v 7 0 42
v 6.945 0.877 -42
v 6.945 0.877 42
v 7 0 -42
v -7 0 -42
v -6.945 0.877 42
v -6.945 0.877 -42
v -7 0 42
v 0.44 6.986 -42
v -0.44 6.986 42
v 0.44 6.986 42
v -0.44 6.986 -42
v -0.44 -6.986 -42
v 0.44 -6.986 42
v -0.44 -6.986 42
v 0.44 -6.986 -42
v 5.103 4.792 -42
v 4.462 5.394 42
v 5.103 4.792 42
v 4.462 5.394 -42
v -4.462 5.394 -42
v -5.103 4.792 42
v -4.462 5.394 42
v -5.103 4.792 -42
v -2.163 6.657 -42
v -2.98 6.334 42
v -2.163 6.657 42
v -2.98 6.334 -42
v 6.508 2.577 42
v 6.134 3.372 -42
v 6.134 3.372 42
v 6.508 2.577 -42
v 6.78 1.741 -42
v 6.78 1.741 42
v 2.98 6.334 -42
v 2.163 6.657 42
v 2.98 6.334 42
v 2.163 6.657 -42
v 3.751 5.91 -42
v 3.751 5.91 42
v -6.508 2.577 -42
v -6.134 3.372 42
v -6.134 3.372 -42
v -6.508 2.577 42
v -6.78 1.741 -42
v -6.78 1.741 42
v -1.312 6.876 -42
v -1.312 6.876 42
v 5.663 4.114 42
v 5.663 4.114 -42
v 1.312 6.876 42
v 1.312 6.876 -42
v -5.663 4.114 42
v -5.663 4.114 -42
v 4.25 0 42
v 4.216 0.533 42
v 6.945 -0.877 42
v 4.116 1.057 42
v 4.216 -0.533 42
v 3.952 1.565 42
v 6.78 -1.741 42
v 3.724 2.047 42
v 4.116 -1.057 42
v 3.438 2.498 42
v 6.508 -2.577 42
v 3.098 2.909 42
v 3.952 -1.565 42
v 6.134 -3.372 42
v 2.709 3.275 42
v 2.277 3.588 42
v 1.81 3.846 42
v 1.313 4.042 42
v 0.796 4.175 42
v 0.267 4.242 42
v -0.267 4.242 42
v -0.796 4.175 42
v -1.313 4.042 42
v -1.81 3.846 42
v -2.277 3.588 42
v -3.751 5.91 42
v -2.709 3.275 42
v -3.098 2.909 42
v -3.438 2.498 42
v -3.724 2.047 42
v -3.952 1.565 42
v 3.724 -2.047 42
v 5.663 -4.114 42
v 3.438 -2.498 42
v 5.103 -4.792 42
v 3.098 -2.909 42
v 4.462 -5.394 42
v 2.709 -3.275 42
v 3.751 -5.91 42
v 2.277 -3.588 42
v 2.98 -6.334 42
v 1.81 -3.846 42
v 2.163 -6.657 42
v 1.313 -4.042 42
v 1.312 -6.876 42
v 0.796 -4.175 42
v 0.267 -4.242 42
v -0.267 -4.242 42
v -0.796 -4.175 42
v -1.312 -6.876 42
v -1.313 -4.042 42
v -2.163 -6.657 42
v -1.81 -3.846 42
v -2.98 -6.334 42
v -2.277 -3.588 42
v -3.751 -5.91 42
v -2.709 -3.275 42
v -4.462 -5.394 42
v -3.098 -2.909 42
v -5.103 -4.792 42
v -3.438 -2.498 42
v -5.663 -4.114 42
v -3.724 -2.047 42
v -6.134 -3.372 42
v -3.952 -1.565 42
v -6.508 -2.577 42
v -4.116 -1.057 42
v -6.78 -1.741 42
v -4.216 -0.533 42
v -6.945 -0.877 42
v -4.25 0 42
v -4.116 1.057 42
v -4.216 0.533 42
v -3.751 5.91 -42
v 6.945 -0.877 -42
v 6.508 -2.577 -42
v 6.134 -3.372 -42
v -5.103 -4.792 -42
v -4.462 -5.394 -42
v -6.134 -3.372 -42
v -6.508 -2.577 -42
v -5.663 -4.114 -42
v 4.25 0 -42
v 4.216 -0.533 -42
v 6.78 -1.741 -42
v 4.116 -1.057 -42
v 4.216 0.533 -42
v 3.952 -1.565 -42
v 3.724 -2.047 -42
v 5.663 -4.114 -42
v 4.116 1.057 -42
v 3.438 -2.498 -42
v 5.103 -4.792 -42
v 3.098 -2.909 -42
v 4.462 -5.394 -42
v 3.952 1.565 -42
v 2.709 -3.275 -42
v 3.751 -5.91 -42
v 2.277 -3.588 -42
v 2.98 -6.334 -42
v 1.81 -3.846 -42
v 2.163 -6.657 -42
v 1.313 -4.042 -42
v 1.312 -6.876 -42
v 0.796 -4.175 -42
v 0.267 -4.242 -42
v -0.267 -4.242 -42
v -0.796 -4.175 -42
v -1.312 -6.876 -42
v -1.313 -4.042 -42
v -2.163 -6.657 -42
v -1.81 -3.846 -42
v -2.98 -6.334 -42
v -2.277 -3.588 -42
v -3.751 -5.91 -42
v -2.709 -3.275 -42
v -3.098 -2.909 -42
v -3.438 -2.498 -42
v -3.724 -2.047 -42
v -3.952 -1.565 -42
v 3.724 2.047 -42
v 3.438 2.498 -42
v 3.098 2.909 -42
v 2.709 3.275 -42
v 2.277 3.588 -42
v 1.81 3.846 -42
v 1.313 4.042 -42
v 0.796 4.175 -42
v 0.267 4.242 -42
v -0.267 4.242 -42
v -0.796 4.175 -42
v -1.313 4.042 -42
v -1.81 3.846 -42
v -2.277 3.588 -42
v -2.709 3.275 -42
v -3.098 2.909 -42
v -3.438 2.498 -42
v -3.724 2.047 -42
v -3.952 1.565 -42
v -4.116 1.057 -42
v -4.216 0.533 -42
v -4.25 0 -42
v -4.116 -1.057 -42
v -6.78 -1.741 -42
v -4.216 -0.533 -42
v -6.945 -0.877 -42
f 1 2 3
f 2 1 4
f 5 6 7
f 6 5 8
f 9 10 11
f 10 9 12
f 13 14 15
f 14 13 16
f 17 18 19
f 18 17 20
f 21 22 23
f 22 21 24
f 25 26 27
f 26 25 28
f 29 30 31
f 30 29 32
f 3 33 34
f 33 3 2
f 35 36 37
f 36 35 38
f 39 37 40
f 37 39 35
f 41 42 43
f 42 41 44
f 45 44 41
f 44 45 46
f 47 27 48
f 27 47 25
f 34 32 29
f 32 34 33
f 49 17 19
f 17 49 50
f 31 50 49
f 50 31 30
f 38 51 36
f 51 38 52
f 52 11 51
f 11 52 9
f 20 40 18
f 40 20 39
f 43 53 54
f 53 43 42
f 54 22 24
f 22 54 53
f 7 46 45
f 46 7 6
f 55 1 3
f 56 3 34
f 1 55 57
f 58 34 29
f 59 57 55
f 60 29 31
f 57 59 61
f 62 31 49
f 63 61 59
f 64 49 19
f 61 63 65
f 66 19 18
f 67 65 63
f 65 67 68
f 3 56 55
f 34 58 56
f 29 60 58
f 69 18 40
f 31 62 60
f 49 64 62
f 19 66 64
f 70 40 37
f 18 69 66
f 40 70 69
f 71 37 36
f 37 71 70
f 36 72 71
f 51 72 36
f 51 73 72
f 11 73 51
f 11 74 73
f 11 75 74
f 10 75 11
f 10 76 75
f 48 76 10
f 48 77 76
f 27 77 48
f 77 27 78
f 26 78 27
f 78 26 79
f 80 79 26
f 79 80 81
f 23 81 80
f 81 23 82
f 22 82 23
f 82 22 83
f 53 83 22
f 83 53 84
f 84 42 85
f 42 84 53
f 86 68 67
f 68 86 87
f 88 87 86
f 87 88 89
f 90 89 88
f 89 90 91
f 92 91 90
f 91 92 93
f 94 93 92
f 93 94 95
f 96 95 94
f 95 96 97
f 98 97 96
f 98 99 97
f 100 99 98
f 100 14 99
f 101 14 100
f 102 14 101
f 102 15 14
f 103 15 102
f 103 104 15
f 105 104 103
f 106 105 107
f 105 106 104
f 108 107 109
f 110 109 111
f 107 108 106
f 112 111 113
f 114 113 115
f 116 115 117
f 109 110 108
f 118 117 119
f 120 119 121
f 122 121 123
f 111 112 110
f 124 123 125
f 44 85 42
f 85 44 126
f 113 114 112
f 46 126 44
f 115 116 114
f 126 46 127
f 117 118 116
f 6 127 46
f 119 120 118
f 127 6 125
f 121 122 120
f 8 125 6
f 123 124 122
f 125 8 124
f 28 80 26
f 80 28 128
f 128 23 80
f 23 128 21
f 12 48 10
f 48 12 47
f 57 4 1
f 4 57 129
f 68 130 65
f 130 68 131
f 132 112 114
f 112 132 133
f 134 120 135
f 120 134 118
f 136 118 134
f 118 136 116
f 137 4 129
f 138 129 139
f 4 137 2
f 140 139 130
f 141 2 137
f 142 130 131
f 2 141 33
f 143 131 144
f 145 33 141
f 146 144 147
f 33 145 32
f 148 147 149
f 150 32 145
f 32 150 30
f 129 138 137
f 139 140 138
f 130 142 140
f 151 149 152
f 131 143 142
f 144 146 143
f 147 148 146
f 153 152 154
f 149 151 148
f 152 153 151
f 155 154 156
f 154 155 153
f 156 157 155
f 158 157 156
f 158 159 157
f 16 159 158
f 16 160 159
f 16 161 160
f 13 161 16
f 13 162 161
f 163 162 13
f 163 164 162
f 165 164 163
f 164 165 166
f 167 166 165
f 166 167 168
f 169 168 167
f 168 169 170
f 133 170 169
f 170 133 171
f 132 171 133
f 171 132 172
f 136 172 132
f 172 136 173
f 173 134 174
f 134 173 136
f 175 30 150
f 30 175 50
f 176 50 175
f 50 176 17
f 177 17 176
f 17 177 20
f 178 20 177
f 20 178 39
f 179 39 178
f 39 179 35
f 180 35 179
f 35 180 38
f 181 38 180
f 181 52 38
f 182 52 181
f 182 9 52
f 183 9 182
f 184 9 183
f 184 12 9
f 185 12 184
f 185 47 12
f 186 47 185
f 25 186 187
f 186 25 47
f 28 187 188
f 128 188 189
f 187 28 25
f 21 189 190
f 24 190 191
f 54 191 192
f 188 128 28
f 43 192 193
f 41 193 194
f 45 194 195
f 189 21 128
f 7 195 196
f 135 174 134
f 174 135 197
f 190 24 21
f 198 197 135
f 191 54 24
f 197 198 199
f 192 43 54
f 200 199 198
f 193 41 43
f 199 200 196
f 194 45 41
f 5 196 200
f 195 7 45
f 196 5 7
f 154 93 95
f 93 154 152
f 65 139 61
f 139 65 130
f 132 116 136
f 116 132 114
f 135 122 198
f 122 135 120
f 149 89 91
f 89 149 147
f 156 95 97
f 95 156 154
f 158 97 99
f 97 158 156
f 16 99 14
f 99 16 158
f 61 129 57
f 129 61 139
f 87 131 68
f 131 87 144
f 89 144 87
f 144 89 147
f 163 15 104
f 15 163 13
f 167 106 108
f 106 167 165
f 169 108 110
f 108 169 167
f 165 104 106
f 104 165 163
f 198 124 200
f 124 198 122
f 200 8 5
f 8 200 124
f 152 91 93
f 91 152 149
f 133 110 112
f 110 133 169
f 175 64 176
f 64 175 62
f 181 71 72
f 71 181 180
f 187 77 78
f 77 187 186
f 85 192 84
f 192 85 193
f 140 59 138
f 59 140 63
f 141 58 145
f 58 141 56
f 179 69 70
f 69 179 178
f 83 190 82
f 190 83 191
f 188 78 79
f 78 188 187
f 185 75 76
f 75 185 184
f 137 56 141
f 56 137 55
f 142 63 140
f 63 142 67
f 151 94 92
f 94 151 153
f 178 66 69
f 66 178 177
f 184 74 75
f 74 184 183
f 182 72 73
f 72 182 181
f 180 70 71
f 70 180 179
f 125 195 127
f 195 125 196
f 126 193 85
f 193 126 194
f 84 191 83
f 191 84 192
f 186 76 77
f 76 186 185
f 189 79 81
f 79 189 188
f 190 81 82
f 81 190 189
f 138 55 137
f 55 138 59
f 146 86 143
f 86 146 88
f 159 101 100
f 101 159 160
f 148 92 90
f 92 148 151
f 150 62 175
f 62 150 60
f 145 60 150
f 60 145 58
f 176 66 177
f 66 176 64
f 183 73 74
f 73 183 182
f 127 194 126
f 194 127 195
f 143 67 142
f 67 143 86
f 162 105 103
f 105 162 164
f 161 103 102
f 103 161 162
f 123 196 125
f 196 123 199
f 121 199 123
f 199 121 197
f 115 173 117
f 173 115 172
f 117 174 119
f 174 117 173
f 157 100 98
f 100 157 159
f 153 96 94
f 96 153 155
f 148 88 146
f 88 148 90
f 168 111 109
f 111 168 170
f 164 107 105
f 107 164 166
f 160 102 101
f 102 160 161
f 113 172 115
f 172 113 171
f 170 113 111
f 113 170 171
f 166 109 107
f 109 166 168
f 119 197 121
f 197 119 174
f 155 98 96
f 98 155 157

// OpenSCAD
$fn = 50;


difference() {
	union() {
		translate(v = [0, 0, -42.0000000000]) {
			cylinder(h = 84, r = 7.0000000000);
		}
	}
	union() {
		translate(v = [0, 0, -100.0000000000]) {
			cylinder(h = 200, r = 4.2500000000);
		}
	}
}
